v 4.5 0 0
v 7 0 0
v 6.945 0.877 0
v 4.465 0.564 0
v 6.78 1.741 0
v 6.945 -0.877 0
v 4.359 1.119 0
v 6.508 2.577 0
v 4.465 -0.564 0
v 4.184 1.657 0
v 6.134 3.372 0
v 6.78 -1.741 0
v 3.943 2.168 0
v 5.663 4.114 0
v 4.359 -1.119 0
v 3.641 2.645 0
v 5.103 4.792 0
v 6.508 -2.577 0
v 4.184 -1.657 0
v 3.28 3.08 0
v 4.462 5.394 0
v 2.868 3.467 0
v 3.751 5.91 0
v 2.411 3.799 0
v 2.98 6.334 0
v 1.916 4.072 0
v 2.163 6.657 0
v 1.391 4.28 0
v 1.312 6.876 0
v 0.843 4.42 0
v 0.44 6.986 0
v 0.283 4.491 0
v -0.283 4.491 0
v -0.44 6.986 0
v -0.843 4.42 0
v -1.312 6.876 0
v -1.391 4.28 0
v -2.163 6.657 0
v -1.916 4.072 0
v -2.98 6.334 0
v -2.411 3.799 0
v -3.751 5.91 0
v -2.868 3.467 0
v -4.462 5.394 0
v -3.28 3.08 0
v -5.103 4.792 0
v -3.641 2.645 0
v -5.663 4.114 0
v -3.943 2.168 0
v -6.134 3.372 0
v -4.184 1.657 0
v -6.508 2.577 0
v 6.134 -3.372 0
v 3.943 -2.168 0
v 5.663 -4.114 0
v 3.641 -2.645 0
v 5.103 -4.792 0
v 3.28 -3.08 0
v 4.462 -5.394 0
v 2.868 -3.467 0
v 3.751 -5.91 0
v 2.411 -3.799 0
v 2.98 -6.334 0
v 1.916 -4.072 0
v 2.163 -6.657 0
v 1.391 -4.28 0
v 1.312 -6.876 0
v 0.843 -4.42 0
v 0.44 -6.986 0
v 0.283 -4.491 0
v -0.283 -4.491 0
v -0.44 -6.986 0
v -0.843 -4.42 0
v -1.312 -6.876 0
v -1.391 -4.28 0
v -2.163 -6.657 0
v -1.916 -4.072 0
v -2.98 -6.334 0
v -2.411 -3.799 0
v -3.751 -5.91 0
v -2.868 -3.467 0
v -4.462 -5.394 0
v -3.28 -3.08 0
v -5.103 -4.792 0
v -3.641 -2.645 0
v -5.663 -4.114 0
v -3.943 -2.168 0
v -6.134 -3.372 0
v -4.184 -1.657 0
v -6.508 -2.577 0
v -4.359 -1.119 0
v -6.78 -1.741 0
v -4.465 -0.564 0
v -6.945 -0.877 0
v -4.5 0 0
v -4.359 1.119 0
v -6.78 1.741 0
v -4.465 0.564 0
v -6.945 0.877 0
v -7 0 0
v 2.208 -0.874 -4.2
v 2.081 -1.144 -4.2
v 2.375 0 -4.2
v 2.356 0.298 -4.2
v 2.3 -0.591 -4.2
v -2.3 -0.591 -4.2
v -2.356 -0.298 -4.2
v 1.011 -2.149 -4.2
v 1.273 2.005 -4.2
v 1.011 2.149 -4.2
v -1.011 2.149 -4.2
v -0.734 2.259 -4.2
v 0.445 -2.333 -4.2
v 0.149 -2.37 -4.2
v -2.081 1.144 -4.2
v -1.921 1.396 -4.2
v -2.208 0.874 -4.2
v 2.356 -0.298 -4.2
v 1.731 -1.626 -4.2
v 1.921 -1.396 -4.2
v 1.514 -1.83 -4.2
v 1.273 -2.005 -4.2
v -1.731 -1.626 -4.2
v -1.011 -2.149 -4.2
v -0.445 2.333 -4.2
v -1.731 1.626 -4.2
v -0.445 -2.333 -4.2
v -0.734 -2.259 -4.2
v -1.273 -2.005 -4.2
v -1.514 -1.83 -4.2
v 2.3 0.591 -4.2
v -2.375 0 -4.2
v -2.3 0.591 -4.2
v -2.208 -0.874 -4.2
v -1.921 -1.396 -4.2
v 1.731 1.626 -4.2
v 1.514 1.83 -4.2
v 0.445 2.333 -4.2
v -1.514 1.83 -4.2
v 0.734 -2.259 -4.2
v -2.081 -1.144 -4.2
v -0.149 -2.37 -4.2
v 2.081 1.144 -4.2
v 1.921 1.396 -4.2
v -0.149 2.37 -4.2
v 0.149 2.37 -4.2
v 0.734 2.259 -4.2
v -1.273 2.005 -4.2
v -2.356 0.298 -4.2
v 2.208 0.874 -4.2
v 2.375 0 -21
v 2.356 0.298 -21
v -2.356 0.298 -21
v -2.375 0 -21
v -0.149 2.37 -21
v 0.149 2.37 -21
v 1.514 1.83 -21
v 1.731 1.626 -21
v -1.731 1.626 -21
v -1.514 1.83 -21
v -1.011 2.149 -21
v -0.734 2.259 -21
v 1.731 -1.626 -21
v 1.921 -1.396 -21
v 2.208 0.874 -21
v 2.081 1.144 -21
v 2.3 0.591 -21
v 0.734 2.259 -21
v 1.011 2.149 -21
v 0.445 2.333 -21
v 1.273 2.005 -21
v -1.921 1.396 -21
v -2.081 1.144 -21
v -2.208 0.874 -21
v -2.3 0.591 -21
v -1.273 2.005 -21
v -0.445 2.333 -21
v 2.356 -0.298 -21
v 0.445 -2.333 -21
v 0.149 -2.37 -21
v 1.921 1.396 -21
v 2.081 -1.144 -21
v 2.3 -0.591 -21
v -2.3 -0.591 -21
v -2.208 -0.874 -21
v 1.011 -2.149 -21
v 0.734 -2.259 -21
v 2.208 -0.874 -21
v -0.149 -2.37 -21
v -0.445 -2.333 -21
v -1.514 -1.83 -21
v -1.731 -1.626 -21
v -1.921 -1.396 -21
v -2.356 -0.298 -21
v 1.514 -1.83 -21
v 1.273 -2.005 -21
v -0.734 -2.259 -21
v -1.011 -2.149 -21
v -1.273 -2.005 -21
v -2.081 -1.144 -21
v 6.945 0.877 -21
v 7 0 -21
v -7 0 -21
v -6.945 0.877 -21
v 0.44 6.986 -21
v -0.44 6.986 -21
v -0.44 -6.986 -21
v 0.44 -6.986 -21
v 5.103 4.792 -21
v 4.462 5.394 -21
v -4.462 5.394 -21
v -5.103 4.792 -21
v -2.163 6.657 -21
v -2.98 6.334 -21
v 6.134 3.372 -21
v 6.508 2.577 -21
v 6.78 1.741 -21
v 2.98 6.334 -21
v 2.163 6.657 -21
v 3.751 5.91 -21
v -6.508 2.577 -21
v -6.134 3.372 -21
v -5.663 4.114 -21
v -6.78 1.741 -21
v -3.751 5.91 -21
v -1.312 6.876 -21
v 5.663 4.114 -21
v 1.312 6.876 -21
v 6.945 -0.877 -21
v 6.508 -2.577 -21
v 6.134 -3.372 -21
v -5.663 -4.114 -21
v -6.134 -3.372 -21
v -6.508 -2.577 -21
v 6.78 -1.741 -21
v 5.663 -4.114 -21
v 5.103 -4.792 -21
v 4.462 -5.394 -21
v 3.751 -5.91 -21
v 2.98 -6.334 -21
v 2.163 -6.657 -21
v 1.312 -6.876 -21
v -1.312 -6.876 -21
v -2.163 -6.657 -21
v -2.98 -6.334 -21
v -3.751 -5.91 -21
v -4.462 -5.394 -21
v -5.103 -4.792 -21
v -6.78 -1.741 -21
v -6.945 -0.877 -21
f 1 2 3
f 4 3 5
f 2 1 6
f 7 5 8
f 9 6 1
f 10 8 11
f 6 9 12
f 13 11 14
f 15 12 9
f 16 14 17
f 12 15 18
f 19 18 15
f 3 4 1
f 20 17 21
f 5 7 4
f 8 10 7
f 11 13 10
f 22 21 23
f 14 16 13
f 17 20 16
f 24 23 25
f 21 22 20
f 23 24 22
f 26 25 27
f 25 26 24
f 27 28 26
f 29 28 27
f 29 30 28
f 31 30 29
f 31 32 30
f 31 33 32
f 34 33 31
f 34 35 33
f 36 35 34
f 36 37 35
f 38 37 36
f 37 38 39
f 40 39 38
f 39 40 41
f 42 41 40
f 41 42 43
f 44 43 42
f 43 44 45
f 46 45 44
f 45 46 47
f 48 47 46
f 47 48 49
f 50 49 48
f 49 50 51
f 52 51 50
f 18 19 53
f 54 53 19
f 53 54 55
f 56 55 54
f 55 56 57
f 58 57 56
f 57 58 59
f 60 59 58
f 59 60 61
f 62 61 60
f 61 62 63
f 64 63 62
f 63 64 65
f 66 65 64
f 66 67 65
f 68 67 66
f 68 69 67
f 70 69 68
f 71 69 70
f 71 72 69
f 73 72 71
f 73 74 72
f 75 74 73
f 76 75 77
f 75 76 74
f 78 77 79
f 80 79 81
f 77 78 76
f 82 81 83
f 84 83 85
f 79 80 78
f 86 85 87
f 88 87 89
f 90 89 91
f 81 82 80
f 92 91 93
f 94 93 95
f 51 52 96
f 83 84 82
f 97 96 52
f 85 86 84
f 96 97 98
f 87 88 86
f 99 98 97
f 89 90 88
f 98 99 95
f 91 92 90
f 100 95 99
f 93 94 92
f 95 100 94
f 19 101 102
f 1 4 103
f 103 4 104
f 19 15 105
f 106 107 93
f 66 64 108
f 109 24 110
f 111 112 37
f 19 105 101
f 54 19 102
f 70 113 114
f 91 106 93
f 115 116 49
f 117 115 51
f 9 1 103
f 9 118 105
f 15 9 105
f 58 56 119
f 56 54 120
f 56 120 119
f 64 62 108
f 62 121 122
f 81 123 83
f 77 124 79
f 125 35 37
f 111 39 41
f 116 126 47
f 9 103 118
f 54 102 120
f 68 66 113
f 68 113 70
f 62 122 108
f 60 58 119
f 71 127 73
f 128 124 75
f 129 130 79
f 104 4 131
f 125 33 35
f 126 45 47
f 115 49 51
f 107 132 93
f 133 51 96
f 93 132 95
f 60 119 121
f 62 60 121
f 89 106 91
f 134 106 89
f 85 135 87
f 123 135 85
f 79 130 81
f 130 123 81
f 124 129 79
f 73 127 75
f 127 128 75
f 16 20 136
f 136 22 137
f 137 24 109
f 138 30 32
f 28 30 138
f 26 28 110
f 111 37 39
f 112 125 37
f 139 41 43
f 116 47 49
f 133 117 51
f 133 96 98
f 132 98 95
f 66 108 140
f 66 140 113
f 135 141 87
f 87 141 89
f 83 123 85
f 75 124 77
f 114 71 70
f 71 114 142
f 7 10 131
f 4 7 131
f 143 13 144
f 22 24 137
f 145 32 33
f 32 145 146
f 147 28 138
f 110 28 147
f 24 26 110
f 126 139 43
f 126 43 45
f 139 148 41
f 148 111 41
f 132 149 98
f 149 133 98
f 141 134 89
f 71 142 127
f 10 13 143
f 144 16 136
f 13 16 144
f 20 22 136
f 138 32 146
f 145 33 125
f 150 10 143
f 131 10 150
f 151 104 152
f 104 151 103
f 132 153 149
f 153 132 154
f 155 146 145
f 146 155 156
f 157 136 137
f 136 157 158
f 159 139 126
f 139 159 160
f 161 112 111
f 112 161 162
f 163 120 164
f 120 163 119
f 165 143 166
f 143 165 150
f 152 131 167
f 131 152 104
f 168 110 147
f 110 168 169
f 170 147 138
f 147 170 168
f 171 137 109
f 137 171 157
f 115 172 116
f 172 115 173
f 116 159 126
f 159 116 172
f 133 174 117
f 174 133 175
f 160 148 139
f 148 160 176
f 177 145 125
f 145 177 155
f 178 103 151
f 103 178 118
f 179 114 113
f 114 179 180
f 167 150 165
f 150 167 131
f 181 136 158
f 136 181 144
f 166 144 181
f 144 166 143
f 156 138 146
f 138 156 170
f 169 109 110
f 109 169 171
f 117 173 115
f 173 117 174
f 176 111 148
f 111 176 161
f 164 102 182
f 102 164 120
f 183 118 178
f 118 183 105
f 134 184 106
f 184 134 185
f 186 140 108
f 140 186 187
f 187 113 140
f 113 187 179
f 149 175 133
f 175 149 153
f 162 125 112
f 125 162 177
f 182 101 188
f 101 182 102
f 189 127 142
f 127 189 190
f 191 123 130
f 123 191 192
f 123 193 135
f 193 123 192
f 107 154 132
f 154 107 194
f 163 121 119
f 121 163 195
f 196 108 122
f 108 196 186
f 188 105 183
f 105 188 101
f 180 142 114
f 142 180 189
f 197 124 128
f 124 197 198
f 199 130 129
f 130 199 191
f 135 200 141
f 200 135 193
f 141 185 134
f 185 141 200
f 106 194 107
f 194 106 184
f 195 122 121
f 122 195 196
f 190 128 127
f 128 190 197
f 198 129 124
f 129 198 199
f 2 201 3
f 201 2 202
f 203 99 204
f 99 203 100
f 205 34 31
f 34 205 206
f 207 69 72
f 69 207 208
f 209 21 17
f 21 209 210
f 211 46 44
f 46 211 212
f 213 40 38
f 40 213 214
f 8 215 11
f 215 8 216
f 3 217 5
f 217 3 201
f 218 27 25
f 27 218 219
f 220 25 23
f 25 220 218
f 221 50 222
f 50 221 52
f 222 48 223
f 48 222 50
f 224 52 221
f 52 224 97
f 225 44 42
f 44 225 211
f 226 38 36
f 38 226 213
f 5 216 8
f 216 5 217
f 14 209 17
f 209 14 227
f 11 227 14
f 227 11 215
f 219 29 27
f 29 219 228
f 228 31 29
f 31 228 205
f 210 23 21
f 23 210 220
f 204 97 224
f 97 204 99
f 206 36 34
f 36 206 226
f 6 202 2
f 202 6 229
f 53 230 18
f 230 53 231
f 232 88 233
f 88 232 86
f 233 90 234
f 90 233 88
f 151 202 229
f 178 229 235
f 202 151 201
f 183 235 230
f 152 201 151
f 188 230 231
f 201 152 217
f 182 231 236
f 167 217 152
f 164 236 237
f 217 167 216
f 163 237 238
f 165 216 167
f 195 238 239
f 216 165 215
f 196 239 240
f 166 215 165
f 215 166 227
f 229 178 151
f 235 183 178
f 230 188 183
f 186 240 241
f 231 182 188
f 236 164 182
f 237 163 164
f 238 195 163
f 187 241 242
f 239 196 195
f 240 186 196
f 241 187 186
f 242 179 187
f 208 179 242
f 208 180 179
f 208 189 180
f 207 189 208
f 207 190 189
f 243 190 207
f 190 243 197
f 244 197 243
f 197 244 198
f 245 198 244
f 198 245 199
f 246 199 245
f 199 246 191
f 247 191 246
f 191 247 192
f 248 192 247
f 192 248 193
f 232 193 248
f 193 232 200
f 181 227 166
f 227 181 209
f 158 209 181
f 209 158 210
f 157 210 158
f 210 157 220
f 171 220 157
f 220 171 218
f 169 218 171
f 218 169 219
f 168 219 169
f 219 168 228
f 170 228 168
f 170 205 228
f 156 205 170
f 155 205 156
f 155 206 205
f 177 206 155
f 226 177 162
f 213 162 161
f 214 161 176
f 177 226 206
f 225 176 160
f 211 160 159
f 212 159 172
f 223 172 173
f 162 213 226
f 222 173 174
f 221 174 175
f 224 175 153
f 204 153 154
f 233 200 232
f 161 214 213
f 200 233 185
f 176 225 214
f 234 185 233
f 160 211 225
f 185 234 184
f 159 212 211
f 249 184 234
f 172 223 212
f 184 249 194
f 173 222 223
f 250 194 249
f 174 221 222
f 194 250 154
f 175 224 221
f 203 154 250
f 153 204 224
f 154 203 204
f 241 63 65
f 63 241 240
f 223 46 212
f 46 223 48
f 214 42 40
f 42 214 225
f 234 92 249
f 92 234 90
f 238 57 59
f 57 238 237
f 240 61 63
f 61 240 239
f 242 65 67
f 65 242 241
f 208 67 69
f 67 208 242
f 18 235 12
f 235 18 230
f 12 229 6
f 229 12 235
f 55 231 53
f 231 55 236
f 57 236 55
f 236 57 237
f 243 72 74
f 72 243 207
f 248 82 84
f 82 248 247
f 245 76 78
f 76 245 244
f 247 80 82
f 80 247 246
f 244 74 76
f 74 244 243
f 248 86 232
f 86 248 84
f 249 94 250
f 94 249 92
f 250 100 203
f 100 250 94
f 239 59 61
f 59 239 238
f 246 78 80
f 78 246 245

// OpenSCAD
$fn = 50;

difference() {
	union() {
		translate(v = [0, 0, -21.0]) {
			cylinder(h = 21, r = 7.0);
		}
	}
	union() {
		translate(v = [0, 0, 0]) {
			rotate(a = [0, 0, 0]) {
				difference() {
					union() {
						translate(v = [0, 0, -24.0]) {
							cylinder(h = 24, r = 2.25);
						}
						translate(v = [0, 0, -4.2]) {
							cylinder(h = 4.2, r1 = 2.375, r2 = 4.5);
						}
						translate(v = [0, 0, -24.0]) {
							cylinder(h = 24, r = 2.375);
						}
						translate(v = [0, 0, -24.0]) {
							cylinder(h = 24, r = 2.25);
						}
					}
					union();
				}
			}
		}
	}
}
